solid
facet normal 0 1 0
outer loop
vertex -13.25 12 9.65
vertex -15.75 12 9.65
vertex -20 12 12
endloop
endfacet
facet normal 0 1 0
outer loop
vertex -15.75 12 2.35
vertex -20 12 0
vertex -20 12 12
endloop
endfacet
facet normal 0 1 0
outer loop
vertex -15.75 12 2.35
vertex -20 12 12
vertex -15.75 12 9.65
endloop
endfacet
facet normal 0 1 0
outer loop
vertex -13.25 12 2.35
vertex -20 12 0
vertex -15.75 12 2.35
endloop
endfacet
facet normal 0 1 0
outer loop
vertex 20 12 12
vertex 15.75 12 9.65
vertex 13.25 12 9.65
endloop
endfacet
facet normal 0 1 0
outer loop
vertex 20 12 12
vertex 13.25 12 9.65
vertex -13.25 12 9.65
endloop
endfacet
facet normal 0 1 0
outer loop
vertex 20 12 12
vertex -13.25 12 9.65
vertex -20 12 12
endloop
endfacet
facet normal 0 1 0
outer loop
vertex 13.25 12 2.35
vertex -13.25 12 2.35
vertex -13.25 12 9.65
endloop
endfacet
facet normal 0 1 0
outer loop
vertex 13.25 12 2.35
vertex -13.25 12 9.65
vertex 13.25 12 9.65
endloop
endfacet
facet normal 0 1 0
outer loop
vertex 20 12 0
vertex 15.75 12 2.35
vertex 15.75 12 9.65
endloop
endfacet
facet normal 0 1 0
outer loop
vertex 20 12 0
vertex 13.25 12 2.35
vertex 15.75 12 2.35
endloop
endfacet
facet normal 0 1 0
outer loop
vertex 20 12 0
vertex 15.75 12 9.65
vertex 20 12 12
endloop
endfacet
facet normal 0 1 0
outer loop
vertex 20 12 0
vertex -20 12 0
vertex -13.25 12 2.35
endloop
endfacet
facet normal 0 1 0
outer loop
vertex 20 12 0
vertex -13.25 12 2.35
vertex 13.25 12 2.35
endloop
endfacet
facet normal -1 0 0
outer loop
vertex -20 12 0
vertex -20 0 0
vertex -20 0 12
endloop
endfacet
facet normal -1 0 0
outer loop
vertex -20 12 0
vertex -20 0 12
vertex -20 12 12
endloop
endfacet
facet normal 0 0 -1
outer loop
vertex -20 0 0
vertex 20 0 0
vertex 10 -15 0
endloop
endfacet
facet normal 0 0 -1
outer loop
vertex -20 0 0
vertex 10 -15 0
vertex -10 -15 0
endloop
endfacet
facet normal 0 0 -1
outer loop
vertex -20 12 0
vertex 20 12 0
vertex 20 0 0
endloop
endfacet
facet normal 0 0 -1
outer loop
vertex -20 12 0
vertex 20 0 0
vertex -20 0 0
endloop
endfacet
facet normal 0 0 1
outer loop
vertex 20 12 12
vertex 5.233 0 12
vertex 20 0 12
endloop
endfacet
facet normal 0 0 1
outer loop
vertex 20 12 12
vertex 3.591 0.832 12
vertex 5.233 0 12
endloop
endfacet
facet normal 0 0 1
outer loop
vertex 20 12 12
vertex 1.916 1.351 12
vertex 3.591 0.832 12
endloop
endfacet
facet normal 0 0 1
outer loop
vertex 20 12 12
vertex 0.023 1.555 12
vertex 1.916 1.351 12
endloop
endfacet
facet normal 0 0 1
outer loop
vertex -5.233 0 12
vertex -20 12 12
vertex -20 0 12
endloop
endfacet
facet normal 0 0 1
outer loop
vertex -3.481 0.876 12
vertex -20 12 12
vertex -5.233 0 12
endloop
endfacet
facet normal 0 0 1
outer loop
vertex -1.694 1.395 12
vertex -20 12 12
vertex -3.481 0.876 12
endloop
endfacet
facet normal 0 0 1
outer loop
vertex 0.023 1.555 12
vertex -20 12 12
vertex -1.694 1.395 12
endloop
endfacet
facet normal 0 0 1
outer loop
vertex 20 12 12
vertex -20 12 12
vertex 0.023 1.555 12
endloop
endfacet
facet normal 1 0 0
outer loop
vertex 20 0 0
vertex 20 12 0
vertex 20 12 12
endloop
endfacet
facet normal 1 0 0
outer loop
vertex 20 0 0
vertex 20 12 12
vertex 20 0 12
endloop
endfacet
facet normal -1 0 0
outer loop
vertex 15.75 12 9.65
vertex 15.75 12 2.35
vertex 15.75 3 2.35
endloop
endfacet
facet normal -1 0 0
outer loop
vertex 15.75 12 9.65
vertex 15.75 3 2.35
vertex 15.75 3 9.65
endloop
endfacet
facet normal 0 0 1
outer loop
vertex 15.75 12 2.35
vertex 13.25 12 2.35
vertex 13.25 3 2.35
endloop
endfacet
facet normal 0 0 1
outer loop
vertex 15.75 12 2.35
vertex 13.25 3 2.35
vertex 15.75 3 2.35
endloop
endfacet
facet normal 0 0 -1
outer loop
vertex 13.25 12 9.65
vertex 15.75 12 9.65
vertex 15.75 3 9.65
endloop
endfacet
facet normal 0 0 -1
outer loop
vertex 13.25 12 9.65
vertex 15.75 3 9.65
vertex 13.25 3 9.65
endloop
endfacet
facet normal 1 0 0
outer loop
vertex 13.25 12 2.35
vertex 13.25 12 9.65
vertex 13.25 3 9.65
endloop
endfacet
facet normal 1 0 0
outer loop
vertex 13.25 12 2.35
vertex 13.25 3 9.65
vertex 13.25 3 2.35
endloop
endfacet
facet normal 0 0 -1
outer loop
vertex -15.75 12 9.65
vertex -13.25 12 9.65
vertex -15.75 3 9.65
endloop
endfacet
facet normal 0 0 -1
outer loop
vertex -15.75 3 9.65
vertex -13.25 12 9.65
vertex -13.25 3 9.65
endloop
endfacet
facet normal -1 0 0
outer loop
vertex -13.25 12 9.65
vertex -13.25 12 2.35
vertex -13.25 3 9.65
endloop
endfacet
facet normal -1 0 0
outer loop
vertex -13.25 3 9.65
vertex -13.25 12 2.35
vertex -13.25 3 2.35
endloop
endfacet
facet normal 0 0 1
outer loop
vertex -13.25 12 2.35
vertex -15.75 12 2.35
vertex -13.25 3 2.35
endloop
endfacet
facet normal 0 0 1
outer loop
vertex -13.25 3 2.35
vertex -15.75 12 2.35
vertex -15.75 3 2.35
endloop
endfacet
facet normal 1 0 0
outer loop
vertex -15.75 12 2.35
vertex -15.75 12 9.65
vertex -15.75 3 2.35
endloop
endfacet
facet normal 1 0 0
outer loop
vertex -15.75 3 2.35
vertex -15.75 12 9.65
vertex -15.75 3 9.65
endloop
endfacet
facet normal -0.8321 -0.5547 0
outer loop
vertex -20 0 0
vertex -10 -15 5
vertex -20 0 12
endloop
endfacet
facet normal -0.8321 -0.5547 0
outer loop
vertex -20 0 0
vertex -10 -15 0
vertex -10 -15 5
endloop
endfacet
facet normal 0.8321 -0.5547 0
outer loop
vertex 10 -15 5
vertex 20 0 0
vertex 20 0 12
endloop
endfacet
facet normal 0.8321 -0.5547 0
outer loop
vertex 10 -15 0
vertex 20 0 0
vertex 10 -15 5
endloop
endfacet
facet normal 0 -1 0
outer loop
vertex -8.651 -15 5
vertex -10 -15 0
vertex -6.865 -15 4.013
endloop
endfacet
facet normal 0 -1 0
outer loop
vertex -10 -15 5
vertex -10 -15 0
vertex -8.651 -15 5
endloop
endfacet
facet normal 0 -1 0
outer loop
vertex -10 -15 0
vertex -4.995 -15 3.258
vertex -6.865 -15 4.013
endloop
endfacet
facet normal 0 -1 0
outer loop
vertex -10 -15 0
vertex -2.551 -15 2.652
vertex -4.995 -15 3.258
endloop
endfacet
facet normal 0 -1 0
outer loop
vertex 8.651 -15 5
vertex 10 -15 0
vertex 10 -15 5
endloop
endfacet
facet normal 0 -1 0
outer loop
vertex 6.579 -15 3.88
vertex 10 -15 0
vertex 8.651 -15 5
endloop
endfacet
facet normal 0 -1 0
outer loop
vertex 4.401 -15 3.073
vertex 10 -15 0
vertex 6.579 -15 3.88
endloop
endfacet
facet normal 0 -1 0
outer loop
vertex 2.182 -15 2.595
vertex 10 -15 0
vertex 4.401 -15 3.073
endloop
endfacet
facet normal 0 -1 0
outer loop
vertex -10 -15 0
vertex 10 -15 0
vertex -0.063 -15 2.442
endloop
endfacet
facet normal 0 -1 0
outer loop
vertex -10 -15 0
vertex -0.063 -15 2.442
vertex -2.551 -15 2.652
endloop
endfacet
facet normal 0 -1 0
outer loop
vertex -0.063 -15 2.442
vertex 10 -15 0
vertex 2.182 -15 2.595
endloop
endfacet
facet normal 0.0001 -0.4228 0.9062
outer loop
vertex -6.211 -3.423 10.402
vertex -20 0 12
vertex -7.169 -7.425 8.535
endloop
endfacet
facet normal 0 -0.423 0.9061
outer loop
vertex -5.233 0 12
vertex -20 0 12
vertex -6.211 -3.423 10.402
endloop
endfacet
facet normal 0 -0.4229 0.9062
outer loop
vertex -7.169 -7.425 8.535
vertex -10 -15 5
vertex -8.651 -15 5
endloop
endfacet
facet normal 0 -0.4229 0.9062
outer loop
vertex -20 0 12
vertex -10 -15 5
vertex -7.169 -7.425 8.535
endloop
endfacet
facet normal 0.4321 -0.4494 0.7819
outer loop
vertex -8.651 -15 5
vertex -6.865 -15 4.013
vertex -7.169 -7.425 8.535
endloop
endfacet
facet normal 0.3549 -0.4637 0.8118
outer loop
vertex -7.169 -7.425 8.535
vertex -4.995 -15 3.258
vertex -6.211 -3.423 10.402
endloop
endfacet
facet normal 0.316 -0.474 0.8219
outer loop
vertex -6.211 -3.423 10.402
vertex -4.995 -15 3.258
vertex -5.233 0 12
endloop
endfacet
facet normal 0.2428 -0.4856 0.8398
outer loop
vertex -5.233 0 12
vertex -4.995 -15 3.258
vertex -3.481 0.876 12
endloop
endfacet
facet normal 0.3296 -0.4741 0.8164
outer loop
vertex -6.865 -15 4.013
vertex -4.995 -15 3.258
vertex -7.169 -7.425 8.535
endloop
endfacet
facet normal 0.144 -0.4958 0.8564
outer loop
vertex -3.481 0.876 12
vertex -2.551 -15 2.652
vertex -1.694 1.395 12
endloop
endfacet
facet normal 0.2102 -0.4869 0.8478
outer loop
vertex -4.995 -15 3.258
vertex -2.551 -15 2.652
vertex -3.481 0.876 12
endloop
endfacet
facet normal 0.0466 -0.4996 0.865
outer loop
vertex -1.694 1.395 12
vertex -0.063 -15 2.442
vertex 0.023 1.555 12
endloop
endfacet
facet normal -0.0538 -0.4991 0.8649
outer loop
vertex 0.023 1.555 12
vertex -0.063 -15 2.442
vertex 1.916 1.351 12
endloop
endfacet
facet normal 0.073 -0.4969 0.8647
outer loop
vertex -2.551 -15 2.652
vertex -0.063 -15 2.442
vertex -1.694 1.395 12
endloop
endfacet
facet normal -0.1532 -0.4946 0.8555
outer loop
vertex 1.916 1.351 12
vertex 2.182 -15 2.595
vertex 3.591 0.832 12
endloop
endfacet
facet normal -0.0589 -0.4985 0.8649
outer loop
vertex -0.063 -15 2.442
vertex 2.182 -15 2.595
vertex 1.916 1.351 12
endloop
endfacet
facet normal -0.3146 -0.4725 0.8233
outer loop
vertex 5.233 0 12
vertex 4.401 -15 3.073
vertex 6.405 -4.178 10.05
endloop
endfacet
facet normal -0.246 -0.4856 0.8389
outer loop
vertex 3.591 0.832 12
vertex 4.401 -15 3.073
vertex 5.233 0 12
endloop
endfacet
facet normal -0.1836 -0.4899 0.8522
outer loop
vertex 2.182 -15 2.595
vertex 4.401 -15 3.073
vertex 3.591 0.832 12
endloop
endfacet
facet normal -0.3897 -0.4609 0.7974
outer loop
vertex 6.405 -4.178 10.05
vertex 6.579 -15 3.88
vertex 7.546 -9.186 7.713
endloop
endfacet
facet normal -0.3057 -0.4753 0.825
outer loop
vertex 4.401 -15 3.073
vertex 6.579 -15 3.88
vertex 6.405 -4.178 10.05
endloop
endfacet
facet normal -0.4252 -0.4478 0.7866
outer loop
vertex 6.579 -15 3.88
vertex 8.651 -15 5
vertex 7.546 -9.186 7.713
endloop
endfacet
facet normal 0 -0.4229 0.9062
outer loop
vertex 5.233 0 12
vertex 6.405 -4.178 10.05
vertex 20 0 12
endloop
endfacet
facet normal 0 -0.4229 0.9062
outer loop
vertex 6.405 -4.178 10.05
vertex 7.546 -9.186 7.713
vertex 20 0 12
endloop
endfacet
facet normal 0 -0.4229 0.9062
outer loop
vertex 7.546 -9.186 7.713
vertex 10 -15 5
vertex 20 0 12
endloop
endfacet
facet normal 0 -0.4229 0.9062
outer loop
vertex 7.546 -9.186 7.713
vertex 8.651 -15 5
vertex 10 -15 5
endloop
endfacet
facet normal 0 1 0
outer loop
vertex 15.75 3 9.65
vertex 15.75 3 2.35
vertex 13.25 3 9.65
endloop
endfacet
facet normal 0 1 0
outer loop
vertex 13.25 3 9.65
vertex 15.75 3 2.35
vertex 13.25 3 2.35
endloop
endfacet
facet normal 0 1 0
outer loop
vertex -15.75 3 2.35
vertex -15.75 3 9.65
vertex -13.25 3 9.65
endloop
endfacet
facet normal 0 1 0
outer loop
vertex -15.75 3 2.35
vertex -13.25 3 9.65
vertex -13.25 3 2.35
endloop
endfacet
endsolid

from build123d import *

# Parameters (mm, degrees)
CYLINDER_R               = 18
CYLINDER_DEPTH           = 30
CYLINDER_PLACEMENT_ANGLE = 120
PAD_DEPTH                = 12
POCKET_DEPTH             = 40.001
SKETCH002_W              = 2.5
SKETCH002_H              = 7.3
POCKET001_DEPTH          = 9


with BuildPart() as cilindro:
    # Cylinder → Cylinder (new body)
    with BuildSketch(Plane.XY):
        Circle(CYLINDER_R)
    extrude(amount=CYLINDER_DEPTH)


with BuildPart() as cilindro_1:
    # Cylinder placement: moved
    add(cilindro.part.moved(Location((0, -5, 29))).rotate(Axis((0, -5, 29), (1, 0, 0)), CYLINDER_PLACEMENT_ANGLE))


with BuildPart() as cut:
    # Sketch → Pad (new body)
    with BuildSketch(Plane.XY):
        Polygon((-20, 12), (20, 12), (20, 0), (10, -15), (-10, -15), (-20, 0), align=None)
    extrude(amount=PAD_DEPTH)

    # Sketch001 (on Face6 of Pad) → Pocket (cut, through all)
    with BuildSketch(Plane(origin=(-20, 0, 0), x_dir=(0, -1, 0), z_dir=(-1, 0, 0))):
        Polygon((0, 12), (15, 5), (15, 12), align=None)
    extrude(amount=-POCKET_DEPTH, mode=Mode.SUBTRACT)

    # Sketch002 (on Face1 of Pocket) → Pocket001 (cut)
    with BuildSketch(Plane(origin=(0, 12, 0), x_dir=(-1, 0, 0), z_dir=(0, 1, 0))):
        with Locations((-14.5, 6)):
            Rectangle(SKETCH002_W, SKETCH002_H)
    pocket001 = extrude(amount=-POCKET001_DEPTH, mode=Mode.SUBTRACT)

    # Mirrored: Pocket001 across Sketch002 V_Axis
    add(pocket001.mirror(Plane(origin=(0, 12, 0), x_dir=(0, 1, 0), z_dir=(-1, 0, 0))), mode=Mode.SUBTRACT)

    # Cut: cut Cilindro
    add(cilindro_1.part, mode=Mode.SUBTRACT)


solid = cut.part
